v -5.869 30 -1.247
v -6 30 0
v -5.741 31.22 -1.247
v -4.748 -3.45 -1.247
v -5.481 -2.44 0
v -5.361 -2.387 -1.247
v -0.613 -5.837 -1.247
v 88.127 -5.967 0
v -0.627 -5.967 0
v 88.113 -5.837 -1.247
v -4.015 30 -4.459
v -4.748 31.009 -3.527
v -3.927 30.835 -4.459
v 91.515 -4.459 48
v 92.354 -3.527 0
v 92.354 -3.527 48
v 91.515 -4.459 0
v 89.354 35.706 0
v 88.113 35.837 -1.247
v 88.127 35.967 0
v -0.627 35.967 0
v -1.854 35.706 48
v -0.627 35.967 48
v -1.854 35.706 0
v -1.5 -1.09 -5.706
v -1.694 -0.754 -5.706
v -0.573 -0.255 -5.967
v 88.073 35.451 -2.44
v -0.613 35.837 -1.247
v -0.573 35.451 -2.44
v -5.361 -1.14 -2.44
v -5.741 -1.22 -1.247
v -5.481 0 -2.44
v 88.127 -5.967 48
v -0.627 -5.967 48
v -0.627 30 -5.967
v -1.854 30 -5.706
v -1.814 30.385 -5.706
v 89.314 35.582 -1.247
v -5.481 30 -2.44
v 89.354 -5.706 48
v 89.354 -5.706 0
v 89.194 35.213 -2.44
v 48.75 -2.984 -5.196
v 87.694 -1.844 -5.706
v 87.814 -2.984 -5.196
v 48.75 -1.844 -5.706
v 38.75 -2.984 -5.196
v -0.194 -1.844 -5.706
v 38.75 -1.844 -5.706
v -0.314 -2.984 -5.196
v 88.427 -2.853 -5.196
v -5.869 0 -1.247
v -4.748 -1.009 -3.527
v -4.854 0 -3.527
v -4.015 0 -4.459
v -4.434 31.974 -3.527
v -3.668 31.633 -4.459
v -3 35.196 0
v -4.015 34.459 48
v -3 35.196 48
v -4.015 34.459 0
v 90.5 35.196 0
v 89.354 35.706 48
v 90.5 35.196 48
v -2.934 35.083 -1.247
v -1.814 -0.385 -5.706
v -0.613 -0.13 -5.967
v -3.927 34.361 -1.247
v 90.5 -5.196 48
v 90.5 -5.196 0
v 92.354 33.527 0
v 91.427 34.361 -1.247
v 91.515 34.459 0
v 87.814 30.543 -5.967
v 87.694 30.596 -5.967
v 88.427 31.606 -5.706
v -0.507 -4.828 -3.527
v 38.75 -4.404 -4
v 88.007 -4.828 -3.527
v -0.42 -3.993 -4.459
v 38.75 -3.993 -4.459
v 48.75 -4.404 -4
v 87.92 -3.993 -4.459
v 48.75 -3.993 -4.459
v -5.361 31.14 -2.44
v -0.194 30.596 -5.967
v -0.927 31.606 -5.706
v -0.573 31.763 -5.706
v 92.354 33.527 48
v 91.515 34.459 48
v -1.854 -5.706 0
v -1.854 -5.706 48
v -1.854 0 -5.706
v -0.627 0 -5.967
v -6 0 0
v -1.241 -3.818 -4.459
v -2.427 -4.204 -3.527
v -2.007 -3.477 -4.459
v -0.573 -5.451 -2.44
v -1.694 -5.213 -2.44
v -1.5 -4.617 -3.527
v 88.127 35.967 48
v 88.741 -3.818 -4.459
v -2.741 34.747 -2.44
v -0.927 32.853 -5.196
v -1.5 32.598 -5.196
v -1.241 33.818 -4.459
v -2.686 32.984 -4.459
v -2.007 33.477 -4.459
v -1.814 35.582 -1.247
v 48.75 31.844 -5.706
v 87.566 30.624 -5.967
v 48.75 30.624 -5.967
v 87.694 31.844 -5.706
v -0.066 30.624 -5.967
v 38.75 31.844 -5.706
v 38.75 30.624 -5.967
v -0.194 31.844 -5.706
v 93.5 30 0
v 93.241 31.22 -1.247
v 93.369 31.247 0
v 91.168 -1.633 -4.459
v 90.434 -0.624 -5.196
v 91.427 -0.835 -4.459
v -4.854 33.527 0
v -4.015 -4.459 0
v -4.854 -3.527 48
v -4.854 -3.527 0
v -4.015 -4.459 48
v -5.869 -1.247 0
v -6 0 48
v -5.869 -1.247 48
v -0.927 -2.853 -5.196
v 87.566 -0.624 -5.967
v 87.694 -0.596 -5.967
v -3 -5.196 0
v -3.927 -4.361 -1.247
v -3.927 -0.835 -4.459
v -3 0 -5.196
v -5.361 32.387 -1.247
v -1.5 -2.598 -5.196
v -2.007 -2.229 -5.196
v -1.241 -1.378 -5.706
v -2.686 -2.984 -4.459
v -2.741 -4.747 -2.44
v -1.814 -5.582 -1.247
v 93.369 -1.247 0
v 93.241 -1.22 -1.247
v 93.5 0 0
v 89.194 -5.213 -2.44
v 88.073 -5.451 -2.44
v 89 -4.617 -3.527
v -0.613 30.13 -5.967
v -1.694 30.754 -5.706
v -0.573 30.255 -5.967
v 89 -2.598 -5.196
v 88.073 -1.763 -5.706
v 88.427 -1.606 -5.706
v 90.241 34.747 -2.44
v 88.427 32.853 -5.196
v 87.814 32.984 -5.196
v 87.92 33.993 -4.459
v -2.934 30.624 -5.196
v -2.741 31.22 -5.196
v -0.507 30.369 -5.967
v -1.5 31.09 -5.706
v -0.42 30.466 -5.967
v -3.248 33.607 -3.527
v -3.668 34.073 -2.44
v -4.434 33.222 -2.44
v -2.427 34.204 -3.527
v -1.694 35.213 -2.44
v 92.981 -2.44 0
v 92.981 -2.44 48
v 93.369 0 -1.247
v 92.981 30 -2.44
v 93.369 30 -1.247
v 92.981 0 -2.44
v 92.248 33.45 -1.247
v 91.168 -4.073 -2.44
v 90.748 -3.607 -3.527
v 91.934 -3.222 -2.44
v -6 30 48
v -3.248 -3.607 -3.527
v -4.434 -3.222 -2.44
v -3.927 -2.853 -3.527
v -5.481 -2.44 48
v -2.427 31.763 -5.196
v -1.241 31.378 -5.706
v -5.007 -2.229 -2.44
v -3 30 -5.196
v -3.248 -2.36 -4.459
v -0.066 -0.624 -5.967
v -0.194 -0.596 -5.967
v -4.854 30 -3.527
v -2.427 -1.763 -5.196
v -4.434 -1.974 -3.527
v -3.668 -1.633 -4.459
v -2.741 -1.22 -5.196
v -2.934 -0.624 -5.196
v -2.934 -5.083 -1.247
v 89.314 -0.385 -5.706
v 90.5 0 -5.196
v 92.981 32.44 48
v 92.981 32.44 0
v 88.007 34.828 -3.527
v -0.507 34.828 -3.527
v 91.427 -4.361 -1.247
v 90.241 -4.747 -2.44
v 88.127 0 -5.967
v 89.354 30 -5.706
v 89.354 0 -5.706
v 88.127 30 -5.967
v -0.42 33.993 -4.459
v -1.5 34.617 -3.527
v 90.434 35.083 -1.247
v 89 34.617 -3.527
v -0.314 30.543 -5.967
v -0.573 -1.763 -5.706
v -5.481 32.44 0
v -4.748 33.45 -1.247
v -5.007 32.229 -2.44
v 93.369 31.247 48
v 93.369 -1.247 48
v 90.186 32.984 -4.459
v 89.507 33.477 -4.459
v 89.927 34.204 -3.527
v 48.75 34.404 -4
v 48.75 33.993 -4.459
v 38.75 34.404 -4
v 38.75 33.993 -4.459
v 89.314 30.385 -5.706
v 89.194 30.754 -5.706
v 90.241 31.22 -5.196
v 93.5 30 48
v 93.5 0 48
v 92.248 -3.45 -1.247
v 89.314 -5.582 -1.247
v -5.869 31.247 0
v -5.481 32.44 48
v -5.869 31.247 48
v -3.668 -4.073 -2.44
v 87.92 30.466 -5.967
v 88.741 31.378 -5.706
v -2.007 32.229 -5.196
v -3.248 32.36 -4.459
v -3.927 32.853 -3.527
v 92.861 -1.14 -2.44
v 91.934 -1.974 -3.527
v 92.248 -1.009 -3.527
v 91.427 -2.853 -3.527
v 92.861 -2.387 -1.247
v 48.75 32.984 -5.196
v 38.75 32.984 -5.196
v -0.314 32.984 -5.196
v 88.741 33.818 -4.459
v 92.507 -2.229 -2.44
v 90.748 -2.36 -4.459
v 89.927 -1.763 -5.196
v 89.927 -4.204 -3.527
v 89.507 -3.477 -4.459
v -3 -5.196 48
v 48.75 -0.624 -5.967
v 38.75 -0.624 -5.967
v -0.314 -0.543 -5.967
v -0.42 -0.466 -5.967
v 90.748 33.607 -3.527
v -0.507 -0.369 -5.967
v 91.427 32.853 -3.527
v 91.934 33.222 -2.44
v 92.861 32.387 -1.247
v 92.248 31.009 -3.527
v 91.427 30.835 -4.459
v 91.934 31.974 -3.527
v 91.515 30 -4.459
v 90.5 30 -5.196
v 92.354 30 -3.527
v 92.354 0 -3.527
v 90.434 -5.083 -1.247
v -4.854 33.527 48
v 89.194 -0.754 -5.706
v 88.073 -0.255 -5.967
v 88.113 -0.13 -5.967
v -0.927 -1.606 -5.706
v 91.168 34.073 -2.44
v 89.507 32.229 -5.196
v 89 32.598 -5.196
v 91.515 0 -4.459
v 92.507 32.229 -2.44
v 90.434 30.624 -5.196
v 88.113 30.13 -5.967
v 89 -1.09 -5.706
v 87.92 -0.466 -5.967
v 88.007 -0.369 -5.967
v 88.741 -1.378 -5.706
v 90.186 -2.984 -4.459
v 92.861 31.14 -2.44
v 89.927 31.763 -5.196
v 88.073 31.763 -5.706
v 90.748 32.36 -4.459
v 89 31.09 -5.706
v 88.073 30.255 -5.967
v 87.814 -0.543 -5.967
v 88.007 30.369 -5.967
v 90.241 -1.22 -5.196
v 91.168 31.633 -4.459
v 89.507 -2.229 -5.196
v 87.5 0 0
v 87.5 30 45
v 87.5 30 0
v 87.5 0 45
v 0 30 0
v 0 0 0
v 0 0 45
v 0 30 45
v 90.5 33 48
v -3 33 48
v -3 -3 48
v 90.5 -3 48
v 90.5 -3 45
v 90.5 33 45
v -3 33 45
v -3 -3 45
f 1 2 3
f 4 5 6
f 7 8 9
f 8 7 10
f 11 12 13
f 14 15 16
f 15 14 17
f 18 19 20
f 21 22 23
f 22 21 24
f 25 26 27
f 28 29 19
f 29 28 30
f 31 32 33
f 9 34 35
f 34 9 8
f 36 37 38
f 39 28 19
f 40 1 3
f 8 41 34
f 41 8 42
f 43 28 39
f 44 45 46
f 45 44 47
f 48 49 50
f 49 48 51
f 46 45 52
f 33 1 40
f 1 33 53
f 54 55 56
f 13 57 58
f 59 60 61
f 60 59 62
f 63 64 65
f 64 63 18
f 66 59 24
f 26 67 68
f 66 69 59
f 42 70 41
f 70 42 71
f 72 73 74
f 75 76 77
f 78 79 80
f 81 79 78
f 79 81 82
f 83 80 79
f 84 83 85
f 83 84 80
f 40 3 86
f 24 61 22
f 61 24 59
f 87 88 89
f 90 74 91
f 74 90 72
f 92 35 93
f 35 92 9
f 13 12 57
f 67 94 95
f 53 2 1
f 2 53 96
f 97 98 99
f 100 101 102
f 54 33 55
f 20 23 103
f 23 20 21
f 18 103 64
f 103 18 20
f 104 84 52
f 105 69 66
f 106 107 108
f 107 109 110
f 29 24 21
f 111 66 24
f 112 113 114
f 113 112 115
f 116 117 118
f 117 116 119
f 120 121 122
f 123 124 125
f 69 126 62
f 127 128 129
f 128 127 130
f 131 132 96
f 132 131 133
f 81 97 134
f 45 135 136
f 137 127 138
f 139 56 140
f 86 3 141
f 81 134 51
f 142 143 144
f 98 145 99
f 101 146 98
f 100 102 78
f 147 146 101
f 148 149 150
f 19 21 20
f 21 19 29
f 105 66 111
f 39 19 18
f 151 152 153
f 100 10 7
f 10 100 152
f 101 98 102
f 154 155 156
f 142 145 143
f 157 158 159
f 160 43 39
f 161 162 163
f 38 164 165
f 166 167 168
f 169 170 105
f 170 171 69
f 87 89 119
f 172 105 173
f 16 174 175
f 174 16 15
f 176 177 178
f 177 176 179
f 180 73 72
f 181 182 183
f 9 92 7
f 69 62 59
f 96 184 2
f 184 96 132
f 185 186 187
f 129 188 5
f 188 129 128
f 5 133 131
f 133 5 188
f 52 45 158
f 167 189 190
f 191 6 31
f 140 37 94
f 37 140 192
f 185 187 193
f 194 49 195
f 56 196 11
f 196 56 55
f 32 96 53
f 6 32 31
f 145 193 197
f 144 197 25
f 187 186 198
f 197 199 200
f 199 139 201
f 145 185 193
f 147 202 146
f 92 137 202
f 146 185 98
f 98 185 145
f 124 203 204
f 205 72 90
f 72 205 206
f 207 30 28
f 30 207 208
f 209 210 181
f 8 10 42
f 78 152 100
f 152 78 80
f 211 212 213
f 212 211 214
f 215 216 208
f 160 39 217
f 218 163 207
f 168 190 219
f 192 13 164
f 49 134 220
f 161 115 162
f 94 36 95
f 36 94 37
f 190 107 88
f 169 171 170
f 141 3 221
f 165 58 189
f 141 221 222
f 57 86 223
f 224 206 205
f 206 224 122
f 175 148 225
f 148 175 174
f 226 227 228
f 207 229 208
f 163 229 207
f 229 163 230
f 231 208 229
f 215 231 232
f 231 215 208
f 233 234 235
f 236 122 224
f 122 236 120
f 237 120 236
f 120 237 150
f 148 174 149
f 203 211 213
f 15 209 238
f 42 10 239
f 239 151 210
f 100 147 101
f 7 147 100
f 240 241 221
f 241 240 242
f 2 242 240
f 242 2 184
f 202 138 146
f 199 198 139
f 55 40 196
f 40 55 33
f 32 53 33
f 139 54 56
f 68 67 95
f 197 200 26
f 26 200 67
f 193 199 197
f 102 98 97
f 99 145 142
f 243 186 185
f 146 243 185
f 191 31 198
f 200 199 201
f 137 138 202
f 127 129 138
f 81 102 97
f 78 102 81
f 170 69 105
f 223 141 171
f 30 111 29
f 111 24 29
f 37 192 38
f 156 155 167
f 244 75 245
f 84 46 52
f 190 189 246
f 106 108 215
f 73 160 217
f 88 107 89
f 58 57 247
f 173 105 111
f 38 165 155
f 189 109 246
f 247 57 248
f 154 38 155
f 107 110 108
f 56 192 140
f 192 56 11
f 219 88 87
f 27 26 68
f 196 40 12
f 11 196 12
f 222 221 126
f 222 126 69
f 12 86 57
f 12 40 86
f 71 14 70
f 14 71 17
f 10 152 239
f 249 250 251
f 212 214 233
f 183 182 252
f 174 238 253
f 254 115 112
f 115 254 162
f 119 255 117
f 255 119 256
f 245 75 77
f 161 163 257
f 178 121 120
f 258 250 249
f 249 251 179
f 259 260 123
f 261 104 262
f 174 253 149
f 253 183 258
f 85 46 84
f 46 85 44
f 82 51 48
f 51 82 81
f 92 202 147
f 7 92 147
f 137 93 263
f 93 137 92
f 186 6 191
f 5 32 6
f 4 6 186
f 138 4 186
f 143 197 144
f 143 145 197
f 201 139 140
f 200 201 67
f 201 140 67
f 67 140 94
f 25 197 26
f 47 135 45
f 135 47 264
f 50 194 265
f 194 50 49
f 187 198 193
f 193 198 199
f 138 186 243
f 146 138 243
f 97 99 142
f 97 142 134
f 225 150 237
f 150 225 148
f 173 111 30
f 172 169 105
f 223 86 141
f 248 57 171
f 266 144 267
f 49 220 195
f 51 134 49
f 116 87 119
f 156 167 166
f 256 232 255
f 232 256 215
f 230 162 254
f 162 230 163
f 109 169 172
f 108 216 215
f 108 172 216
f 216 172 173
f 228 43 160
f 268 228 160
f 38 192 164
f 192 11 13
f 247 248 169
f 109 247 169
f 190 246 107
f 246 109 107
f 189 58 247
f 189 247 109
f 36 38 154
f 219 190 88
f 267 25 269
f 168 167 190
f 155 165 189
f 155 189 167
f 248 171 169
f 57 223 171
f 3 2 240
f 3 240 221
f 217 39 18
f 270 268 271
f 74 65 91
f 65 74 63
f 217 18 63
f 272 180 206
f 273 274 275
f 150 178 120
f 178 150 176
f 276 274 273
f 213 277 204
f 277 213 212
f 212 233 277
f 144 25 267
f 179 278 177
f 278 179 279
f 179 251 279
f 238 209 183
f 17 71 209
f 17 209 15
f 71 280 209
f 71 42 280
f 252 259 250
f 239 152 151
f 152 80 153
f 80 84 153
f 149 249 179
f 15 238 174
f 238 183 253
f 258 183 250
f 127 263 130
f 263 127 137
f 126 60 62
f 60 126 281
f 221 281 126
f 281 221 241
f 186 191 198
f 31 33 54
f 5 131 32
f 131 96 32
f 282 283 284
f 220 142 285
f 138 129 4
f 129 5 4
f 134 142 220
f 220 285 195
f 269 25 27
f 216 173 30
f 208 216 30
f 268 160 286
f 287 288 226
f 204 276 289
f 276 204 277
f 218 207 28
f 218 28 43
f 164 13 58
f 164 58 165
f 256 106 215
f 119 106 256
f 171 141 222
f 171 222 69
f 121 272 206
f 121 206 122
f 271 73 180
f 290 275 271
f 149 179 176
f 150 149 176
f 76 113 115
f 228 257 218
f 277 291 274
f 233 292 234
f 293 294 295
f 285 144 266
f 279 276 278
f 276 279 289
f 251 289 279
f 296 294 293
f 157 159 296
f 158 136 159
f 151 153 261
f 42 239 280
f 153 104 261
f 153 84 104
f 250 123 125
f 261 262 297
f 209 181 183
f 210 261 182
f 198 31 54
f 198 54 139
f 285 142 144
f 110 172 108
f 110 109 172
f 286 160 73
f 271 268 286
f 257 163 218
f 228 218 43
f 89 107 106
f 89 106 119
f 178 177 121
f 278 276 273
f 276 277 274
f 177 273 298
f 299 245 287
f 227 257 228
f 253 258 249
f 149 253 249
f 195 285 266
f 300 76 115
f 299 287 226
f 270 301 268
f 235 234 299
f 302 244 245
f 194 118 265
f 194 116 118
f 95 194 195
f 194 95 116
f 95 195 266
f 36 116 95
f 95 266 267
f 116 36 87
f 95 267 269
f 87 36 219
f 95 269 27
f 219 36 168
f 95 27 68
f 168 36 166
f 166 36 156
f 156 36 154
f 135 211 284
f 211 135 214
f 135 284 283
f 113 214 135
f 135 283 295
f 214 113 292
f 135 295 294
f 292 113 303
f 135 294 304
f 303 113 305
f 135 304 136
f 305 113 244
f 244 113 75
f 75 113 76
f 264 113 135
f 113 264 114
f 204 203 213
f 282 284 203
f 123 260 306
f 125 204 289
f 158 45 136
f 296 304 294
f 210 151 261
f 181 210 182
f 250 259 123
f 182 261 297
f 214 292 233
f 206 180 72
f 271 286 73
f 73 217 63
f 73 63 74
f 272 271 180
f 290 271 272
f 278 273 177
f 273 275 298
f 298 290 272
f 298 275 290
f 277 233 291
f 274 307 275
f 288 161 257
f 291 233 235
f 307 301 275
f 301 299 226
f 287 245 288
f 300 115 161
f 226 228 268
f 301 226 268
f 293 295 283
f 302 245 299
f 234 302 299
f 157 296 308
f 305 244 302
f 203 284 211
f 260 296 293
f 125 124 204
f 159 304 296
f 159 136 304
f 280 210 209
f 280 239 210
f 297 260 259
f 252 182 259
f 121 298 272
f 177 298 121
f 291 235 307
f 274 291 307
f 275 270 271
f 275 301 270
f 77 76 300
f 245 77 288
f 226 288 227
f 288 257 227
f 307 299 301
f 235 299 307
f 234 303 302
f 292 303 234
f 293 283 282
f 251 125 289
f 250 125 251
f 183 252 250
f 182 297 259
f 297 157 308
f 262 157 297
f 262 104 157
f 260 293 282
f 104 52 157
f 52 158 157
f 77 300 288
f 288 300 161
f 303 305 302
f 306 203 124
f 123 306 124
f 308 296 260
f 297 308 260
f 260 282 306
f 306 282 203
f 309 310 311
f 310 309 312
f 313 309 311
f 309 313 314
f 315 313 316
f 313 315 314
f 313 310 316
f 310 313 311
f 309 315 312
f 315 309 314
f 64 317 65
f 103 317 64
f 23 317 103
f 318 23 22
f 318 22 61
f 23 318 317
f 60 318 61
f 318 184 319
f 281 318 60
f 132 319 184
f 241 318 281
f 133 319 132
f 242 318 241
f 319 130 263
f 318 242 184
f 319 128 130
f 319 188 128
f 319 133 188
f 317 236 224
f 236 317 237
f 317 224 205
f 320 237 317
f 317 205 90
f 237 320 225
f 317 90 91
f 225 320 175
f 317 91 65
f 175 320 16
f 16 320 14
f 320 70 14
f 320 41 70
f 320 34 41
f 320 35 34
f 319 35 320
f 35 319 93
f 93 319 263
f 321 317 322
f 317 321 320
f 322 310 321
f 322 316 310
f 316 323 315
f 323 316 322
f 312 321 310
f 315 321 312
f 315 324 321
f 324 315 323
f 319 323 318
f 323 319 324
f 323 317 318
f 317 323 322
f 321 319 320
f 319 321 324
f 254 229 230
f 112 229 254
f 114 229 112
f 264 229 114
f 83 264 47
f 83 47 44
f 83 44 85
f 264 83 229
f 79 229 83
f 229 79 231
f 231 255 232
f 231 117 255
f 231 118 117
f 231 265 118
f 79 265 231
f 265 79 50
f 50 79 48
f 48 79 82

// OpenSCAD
difference () {
  translate ([43.75, 15.0, 75/2]) {
    difference () {
      minkowski () {
        cube ([87.5, 30.0, 75], center=true);
        sphere ($fn=30, r=6);
      }
      cube ([87.5, 30.0, 75], center=true);
    }
  }
  union () {
    translate ([0, 0, 148]) {
      cube ([200, 200, 200], center=true);
    }
    translate ([43.75, 15.0, 148]) {
      cube ([93.5, 36.0, 206], center=true);
    }
  }
  translate ([43.75, 0, -5]) {
    cube ([10, 1000, 2], center=true);
  }
}
